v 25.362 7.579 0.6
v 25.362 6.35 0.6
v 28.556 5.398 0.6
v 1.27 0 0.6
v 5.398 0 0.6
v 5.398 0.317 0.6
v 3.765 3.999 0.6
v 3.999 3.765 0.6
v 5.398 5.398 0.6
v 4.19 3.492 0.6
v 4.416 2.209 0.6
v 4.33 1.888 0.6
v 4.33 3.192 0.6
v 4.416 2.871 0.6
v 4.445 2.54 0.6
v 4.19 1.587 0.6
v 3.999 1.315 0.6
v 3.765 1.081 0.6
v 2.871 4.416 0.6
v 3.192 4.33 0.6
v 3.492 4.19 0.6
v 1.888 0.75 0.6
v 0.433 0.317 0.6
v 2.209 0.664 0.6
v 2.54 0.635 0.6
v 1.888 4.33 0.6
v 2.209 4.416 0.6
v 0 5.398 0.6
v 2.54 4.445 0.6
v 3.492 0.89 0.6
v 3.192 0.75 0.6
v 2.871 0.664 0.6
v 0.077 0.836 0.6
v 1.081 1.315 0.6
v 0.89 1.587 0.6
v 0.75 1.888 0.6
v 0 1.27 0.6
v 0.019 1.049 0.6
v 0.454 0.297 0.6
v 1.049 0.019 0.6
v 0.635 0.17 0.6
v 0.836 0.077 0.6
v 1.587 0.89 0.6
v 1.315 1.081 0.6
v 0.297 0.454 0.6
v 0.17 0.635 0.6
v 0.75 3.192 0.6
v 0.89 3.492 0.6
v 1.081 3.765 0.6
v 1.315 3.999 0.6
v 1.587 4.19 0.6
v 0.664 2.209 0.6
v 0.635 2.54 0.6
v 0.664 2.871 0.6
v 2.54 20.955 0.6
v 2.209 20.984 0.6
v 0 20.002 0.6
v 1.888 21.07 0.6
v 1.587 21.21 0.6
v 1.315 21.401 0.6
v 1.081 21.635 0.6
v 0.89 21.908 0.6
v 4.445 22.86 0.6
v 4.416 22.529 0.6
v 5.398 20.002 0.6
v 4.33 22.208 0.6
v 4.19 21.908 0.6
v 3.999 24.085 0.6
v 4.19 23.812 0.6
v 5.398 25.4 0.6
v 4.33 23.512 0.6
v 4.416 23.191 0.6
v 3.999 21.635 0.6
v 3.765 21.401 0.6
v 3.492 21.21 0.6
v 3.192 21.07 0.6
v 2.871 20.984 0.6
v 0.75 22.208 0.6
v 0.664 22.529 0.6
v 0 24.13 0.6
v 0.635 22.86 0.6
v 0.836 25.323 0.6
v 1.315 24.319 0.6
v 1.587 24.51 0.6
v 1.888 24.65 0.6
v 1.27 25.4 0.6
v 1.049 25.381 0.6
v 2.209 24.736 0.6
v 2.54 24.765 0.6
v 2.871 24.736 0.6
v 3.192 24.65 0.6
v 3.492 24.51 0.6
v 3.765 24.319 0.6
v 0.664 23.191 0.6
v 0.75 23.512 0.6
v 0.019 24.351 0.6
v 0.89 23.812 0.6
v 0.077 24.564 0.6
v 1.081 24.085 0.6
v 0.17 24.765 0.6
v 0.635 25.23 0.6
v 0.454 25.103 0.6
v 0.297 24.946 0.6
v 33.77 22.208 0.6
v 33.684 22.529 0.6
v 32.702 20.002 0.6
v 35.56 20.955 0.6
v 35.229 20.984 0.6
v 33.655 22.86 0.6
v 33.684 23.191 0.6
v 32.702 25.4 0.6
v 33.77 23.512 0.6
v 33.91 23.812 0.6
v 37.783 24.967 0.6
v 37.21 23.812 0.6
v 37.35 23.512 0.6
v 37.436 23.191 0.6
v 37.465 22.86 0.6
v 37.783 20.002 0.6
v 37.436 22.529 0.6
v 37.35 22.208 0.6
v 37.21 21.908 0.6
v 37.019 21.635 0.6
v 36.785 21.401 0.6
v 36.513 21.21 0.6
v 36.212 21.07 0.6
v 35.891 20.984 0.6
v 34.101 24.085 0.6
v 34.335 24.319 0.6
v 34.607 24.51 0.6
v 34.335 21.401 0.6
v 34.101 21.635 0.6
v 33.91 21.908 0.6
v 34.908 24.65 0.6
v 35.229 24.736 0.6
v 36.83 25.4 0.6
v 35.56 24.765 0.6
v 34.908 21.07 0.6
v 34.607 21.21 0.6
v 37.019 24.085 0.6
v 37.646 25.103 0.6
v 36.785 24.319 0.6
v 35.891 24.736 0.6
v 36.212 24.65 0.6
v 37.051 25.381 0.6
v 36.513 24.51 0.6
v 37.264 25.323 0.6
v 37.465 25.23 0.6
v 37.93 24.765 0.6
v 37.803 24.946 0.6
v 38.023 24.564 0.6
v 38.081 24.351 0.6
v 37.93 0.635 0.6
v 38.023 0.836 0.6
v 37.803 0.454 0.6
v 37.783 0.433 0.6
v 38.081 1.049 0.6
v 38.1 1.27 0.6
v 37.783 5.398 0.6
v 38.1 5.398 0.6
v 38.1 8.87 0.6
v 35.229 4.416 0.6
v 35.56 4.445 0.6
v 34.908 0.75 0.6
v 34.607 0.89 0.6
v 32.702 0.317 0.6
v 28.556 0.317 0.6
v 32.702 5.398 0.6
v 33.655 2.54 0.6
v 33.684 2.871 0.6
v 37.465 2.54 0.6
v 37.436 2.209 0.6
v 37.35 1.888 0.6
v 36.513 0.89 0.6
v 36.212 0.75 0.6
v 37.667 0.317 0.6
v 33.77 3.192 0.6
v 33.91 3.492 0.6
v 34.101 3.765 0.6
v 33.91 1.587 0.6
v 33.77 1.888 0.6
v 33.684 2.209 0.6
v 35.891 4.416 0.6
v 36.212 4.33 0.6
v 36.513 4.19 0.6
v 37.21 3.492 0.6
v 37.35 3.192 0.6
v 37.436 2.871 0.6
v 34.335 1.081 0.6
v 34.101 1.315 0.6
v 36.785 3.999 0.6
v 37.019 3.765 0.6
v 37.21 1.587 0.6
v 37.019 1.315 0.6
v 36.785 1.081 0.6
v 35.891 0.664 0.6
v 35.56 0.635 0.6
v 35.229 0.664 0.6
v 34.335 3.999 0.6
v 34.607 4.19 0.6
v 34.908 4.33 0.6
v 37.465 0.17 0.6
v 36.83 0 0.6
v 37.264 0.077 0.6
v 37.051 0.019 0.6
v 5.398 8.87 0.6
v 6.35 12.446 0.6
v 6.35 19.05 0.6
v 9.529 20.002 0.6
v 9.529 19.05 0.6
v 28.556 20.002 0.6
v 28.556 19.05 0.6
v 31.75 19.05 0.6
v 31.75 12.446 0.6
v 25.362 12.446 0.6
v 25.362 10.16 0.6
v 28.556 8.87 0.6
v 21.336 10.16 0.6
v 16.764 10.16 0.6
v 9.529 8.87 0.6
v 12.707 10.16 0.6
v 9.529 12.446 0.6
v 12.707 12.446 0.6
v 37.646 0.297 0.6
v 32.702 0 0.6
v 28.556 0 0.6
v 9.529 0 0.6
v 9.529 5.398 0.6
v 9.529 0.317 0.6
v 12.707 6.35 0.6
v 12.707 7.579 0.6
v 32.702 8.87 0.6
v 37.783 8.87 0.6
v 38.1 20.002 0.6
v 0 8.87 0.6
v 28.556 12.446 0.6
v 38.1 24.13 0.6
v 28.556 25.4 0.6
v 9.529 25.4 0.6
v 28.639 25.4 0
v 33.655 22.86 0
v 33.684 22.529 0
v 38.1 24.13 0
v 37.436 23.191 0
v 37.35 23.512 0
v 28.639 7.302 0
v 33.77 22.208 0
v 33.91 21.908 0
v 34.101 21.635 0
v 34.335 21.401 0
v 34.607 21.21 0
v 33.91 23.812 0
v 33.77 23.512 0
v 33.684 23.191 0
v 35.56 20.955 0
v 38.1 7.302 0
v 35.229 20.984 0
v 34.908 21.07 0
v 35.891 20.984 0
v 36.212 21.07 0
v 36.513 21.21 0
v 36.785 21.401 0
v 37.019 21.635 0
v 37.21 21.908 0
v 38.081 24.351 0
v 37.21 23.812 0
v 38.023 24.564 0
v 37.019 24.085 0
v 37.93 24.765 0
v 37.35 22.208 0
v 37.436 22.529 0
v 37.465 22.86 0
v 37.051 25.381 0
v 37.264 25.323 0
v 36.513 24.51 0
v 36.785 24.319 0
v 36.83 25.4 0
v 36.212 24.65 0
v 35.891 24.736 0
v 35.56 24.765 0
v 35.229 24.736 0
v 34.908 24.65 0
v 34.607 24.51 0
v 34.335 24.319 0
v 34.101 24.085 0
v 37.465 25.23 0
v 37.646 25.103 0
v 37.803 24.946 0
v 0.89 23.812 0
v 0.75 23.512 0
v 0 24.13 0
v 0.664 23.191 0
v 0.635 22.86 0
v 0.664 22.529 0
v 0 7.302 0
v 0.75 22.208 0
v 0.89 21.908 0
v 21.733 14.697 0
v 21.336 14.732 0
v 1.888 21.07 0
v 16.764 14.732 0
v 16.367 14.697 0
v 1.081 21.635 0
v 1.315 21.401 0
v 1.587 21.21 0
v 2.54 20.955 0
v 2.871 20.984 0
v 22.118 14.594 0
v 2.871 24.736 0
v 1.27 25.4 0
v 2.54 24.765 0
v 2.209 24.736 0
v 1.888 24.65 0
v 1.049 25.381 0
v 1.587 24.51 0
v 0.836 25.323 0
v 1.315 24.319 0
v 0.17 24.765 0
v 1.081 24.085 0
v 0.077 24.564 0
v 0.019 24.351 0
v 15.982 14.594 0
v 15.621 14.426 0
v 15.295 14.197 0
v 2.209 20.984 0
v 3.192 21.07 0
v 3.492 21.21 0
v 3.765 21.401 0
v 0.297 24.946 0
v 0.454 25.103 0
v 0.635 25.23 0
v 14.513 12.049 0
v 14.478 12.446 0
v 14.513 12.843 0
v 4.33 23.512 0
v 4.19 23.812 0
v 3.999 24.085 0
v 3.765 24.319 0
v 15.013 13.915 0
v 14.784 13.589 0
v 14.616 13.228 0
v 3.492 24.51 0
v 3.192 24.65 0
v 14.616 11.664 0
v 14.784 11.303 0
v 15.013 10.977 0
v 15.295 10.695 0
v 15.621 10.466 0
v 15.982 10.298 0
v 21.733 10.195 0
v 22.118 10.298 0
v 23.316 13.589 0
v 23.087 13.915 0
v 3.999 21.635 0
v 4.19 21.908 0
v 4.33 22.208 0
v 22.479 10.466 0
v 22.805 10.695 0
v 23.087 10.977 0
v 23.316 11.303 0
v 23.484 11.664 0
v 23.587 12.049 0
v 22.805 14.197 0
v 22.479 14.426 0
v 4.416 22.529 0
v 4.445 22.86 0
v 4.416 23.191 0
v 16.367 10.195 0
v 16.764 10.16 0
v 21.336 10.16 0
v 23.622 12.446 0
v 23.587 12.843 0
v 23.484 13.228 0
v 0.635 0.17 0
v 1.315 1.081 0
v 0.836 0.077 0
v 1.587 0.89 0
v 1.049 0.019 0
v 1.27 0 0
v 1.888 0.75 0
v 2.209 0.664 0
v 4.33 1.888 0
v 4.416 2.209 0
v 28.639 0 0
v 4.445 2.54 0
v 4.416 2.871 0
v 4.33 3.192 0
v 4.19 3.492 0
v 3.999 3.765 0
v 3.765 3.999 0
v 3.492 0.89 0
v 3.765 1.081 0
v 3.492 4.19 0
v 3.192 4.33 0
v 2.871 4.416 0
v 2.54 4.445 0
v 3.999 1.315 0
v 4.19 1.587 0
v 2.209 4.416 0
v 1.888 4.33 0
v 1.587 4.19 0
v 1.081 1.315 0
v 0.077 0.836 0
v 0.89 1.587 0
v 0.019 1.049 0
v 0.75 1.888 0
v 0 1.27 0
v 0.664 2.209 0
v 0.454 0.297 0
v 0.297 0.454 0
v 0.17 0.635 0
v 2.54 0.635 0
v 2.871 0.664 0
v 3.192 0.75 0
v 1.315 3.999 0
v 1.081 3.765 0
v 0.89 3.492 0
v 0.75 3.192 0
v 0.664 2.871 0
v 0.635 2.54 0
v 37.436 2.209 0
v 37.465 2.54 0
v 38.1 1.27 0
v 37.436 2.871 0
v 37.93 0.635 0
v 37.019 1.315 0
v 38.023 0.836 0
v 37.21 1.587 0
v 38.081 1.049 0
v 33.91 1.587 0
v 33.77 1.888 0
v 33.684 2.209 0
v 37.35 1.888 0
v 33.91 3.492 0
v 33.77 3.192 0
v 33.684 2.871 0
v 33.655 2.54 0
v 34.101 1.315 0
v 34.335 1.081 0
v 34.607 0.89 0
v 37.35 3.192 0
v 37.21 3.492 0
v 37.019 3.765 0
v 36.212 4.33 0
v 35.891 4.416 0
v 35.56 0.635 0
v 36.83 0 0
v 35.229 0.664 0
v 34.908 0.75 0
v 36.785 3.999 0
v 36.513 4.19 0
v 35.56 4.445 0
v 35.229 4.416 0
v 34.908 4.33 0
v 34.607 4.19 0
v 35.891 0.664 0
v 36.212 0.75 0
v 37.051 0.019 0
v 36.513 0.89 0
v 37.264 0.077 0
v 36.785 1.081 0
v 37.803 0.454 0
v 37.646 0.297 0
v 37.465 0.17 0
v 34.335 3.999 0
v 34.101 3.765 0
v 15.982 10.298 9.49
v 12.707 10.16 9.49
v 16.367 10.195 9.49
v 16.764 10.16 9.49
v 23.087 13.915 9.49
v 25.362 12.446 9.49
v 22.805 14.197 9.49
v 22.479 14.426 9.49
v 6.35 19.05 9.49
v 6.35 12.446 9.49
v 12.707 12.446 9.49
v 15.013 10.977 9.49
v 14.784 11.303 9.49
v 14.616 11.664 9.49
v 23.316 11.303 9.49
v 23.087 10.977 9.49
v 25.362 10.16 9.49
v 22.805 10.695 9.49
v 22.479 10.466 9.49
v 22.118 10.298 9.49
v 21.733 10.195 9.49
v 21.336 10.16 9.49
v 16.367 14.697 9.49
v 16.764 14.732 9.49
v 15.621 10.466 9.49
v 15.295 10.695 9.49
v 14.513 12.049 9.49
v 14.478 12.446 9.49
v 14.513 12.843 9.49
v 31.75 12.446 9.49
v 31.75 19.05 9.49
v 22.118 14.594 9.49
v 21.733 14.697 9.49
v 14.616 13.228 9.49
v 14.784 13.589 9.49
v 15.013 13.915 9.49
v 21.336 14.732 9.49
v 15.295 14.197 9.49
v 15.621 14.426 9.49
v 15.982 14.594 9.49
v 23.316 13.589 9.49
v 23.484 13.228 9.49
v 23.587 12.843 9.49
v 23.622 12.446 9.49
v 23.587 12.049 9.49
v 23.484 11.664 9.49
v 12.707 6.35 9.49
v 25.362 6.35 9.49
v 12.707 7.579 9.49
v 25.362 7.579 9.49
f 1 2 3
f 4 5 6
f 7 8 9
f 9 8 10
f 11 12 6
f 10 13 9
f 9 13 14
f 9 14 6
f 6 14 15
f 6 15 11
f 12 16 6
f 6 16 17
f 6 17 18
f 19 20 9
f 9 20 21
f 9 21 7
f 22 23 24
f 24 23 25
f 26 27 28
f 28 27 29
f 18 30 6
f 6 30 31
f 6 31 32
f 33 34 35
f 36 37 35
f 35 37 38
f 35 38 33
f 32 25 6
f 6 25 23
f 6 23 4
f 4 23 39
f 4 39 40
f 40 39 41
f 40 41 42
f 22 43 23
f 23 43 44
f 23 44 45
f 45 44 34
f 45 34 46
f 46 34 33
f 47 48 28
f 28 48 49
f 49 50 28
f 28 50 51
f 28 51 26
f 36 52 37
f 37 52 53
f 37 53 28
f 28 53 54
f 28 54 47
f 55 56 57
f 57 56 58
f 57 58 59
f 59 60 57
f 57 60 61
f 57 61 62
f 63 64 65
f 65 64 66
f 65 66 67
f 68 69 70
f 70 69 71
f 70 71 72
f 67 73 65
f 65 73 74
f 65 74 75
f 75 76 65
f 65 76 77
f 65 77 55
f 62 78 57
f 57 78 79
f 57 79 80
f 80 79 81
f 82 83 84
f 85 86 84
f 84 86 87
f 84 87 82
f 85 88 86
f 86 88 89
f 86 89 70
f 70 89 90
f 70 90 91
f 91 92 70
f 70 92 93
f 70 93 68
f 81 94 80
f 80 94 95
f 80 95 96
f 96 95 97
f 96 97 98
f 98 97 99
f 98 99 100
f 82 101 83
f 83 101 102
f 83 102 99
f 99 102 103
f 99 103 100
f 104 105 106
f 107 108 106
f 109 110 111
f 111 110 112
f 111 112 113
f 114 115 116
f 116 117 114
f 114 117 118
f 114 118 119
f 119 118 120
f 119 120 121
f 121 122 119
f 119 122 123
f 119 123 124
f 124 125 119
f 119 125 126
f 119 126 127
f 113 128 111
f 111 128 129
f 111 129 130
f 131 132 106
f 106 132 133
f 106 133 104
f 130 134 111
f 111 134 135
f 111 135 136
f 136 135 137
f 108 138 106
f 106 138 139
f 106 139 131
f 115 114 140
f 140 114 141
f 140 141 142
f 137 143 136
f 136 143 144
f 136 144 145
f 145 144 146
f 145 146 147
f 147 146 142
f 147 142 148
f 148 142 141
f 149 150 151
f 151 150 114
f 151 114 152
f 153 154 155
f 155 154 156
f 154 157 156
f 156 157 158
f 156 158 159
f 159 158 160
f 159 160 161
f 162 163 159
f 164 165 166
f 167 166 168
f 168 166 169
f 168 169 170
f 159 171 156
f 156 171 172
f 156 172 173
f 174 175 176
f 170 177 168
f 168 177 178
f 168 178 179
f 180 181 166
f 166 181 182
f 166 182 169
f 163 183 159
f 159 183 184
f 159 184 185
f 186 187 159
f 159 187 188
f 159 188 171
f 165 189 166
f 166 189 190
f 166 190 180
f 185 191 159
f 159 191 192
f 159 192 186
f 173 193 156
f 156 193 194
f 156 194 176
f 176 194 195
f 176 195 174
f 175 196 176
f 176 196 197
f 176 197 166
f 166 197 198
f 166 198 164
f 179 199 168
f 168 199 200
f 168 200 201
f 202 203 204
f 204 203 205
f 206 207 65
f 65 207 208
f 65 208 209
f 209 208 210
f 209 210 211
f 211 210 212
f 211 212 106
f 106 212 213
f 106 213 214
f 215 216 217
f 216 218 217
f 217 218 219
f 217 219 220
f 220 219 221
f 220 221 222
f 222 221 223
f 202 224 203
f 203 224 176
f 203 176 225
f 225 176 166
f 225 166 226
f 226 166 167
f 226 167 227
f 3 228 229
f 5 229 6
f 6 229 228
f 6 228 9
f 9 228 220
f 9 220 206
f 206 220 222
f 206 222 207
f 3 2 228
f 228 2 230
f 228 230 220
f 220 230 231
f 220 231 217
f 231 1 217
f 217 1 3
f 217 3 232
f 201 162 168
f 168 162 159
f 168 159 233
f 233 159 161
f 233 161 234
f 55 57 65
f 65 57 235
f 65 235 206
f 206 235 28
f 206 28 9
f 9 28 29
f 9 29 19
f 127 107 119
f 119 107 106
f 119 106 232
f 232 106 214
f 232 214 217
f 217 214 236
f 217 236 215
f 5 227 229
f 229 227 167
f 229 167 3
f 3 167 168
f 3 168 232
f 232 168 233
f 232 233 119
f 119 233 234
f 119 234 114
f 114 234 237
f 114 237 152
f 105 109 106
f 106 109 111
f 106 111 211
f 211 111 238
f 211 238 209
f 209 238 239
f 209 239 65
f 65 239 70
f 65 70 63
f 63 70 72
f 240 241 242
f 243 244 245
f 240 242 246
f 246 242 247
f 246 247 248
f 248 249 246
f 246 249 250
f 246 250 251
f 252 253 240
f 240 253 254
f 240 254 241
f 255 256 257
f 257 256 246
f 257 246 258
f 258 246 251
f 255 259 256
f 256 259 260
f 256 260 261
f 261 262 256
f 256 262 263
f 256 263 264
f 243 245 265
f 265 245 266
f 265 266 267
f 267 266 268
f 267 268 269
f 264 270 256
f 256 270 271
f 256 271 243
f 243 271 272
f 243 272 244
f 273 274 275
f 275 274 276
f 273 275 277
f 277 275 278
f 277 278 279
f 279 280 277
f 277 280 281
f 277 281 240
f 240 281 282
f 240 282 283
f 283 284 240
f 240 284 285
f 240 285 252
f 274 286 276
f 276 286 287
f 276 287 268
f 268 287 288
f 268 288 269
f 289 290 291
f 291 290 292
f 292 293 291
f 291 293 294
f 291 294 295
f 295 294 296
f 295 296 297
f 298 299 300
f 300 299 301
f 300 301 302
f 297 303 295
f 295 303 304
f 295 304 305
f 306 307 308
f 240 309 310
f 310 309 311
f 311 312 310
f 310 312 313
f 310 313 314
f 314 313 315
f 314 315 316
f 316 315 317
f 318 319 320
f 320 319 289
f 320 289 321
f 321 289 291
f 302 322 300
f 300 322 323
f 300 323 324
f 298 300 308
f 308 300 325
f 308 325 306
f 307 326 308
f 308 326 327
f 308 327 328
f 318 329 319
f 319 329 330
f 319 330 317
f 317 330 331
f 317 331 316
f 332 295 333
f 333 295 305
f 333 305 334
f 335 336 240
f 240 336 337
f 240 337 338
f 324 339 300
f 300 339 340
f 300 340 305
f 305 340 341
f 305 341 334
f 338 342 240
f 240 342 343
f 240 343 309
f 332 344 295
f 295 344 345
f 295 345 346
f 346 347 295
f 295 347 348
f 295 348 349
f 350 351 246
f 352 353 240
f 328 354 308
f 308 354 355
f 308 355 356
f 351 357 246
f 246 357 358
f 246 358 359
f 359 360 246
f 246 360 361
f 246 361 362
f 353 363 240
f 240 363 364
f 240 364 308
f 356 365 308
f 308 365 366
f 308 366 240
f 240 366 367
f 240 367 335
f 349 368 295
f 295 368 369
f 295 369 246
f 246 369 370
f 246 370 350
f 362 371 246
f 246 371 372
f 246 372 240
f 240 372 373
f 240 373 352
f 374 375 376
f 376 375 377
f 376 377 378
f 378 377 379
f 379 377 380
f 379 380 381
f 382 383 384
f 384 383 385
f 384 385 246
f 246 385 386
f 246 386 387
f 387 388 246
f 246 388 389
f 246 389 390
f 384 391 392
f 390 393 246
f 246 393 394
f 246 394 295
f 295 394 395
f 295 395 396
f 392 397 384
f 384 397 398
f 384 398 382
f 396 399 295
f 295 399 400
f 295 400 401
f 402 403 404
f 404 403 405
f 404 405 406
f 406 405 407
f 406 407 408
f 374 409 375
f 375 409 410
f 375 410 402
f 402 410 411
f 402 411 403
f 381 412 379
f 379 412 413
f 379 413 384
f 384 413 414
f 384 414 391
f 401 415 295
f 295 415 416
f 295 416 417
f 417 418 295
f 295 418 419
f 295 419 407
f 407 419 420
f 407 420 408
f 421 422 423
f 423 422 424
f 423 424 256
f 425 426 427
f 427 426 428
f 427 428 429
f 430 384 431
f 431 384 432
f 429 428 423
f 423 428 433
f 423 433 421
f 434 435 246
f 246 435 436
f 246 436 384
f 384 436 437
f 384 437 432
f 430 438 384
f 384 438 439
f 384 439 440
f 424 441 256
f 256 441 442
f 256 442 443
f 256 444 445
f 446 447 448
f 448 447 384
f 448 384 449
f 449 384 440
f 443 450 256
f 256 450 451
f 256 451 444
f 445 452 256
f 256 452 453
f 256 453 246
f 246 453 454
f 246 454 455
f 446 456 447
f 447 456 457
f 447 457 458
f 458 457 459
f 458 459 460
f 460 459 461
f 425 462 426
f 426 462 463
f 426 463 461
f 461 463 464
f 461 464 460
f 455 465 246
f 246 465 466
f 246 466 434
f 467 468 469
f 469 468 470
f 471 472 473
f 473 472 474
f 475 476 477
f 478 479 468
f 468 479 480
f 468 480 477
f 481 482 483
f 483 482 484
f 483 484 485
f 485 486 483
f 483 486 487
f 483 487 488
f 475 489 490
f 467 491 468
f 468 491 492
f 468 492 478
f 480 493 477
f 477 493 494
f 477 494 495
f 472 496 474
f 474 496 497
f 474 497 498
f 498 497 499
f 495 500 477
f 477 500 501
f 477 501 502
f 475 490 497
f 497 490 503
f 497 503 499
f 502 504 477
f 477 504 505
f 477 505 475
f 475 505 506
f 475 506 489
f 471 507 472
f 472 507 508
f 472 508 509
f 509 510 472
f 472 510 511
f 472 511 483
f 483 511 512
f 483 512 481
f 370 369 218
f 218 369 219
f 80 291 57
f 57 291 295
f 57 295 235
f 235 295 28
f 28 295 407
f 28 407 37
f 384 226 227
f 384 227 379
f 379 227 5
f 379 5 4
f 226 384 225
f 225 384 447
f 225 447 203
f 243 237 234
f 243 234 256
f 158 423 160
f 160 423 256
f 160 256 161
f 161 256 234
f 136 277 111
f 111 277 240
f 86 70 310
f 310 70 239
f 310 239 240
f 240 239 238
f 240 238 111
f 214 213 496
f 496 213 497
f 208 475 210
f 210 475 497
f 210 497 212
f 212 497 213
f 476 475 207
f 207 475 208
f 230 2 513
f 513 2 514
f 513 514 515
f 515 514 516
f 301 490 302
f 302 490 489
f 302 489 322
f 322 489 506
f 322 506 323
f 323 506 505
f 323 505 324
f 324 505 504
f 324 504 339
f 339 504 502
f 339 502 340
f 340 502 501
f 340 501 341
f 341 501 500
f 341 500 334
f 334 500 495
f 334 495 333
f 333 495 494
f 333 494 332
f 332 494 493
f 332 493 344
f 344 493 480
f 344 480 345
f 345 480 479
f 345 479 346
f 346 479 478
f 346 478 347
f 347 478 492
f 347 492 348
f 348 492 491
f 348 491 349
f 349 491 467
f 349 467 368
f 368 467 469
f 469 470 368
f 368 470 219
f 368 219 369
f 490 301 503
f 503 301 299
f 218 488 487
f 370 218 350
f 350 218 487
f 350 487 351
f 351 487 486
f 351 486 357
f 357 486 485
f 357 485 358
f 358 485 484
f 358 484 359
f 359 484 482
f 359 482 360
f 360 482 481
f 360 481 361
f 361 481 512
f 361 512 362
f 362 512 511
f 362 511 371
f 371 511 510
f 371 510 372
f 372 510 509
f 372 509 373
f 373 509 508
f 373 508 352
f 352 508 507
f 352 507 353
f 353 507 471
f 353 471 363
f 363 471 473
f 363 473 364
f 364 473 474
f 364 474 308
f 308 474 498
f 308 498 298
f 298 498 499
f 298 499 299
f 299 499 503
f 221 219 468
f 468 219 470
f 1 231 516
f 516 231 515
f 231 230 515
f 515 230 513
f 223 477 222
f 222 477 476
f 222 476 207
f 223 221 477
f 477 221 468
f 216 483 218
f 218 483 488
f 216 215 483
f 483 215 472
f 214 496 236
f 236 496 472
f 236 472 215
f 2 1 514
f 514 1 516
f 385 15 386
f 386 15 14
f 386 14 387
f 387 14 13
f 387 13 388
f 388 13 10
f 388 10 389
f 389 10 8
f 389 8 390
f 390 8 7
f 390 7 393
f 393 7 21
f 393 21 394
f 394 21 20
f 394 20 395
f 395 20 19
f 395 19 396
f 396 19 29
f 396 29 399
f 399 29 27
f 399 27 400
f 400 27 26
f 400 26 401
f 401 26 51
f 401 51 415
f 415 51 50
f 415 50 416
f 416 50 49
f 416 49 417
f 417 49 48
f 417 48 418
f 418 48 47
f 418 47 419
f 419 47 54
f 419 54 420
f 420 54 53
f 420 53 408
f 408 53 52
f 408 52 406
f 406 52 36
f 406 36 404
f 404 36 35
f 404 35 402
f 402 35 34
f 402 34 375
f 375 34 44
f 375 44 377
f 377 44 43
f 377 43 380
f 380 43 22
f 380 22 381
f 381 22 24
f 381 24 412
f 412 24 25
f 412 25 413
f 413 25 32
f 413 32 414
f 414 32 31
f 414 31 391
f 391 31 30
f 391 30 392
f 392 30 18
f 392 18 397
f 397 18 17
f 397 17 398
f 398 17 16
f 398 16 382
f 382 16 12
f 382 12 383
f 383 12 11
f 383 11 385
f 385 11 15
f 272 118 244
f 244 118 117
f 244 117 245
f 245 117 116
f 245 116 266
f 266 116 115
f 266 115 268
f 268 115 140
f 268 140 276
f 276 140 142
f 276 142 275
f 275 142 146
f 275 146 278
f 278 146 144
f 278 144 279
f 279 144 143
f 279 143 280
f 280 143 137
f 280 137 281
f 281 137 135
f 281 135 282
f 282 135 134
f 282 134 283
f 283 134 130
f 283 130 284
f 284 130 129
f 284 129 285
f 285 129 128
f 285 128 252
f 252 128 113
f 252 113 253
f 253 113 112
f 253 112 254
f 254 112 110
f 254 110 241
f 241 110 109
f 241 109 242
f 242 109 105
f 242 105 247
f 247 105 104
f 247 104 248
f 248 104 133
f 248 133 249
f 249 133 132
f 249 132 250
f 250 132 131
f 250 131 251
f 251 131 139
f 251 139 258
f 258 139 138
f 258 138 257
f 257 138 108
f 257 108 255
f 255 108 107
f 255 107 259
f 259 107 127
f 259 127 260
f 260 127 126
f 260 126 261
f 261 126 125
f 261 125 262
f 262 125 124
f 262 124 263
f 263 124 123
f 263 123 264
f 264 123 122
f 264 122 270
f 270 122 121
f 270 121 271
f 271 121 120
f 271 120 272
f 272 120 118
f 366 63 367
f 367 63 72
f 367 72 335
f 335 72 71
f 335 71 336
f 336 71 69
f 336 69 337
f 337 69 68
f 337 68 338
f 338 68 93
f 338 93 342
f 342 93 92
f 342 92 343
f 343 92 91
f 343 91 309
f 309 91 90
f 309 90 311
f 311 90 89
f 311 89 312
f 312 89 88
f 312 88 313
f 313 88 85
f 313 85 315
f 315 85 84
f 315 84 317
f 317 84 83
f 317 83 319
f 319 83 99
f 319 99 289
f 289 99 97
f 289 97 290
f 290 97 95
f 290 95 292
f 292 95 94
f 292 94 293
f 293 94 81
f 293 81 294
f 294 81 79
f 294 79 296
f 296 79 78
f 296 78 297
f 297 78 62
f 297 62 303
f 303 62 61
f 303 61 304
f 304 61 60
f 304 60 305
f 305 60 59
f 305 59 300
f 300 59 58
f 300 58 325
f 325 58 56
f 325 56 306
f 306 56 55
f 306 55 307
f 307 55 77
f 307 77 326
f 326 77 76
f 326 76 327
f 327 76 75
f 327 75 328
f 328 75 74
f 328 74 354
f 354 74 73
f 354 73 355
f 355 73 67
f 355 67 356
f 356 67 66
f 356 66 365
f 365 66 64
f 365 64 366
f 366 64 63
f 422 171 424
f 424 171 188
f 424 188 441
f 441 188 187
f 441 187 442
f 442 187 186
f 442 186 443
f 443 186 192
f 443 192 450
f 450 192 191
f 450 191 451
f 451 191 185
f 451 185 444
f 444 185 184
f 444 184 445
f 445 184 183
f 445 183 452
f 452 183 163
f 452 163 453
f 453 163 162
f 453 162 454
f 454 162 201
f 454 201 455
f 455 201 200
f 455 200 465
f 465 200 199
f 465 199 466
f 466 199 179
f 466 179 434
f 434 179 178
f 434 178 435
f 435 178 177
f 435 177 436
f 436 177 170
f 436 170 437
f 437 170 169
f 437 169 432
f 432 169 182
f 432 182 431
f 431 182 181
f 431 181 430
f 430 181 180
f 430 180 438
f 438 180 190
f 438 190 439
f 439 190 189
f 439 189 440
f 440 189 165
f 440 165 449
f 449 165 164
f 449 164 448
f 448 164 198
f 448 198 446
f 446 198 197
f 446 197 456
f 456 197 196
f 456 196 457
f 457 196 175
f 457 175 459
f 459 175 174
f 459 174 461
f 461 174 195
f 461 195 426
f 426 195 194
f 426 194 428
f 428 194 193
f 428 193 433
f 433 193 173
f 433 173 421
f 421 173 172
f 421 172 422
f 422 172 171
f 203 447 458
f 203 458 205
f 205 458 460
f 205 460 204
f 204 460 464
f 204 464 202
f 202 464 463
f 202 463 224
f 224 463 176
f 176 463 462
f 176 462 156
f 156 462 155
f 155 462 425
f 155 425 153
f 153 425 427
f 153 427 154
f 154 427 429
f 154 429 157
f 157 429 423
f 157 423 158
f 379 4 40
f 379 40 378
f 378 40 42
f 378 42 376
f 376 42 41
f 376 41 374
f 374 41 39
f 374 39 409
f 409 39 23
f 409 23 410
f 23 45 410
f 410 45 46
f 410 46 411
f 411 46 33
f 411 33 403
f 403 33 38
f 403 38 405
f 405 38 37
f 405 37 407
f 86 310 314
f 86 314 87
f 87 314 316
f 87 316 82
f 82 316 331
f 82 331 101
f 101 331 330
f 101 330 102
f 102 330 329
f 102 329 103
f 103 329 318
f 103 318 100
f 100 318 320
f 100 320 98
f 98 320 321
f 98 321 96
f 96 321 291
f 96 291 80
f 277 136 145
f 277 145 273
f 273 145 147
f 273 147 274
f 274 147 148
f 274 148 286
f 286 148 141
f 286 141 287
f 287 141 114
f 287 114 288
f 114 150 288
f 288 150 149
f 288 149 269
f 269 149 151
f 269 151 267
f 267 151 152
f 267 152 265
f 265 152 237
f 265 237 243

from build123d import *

# Parameters (mm, degrees)
SKETCH1_W           = 38.1
SKETCH1_H           = 25.4
BOSS_EXTRUDE1_DEPTH = 0.6
SKETCH2_W           = 25.4
SKETCH2_H           = 12.7
BOSS_EXTRUDE2_DEPTH = 8.89
CUT_EXTRUDE1_DEPTH  = 25.4
CUT_EXTRUDE2_DEPTH  = 8.89
SKETCH5_R           = 1.905
CUT_EXTRUDE4_DEPTH  = 5.08
FILLET4_R           = 1.27


with BuildPart() as part:
    # Sketch1 → Boss-Extrude1 (new body)
    with BuildSketch(Plane.XY):
        with Locations((19.05, 12.7)):
            Rectangle(SKETCH1_W, SKETCH1_H)
    extrude(amount=BOSS_EXTRUDE1_DEPTH)

    # Sketch2 → Boss-Extrude2 (add)
    with BuildSketch(Plane.XY.offset(0.6)):
        with Locations((19.05, 12.7)):
            Rectangle(SKETCH2_W, SKETCH2_H)
    extrude(amount=BOSS_EXTRUDE2_DEPTH)

    # Sketch3 → Cut-Extrude1 (cut)
    with BuildSketch(Plane.XY.offset(9.49)):
        with BuildLine():
            Line((21.336, 14.732), (16.764, 14.732))
            ThreePointArc((16.764, 14.732), (14.478, 12.446), (16.764, 10.16))
            Line((16.764, 10.16), (21.336, 10.16))
            ThreePointArc((21.336, 10.16), (23.622, 12.446), (21.336, 14.732))
        make_face()
    extrude(amount=-CUT_EXTRUDE1_DEPTH, mode=Mode.SUBTRACT)

    # Sketch3<3> → Cut-Extrude2 (cut)
    with BuildSketch(Plane.XY.offset(9.49)):
        Polygon((21.336, 10.16), (16.764, 10.16), (12.707051154, 10.16), (12.707051154, 12.446), (6.35, 12.446), (6.35, 6.35), (12.707051154, 6.35), (12.707051154, 7.579234478), (25.362079922, 7.579234478), (25.362079922, 6.35), (31.75, 6.35), (31.75, 12.446), (25.362079922, 12.446), (25.362079922, 10.16), align=None)
    extrude(amount=-CUT_EXTRUDE2_DEPTH, mode=Mode.SUBTRACT)

    # Sketch5 → Cut-Extrude4 (cut)
    with BuildSketch(Plane.XY.offset(0.6)):
        with Locations((2.54, 22.86)):
            Circle(SKETCH5_R)
        with Locations(Location((35.56, 22.86, 0), (0, 0, 180))):
            Circle(SKETCH5_R)
        with Locations(Location((2.54, 2.54, 0), (0, 0, 180))):
            Circle(SKETCH5_R)
        with Locations((35.56, 2.54)):
            Circle(SKETCH5_R)
    extrude(amount=-CUT_EXTRUDE4_DEPTH, mode=Mode.SUBTRACT)

    # Fillet4
    fillet4_edges = [part.edges().sort_by_distance(p)[0] for p in [
        (0, 0, 0.3),
        (38.1, 0, 0.3),
        (38.1, 25.4, 0.3),
        (0, 25.4, 0.3),
    ]]
    fillet(fillet4_edges, radius=FILLET4_R)


solid = part.part
